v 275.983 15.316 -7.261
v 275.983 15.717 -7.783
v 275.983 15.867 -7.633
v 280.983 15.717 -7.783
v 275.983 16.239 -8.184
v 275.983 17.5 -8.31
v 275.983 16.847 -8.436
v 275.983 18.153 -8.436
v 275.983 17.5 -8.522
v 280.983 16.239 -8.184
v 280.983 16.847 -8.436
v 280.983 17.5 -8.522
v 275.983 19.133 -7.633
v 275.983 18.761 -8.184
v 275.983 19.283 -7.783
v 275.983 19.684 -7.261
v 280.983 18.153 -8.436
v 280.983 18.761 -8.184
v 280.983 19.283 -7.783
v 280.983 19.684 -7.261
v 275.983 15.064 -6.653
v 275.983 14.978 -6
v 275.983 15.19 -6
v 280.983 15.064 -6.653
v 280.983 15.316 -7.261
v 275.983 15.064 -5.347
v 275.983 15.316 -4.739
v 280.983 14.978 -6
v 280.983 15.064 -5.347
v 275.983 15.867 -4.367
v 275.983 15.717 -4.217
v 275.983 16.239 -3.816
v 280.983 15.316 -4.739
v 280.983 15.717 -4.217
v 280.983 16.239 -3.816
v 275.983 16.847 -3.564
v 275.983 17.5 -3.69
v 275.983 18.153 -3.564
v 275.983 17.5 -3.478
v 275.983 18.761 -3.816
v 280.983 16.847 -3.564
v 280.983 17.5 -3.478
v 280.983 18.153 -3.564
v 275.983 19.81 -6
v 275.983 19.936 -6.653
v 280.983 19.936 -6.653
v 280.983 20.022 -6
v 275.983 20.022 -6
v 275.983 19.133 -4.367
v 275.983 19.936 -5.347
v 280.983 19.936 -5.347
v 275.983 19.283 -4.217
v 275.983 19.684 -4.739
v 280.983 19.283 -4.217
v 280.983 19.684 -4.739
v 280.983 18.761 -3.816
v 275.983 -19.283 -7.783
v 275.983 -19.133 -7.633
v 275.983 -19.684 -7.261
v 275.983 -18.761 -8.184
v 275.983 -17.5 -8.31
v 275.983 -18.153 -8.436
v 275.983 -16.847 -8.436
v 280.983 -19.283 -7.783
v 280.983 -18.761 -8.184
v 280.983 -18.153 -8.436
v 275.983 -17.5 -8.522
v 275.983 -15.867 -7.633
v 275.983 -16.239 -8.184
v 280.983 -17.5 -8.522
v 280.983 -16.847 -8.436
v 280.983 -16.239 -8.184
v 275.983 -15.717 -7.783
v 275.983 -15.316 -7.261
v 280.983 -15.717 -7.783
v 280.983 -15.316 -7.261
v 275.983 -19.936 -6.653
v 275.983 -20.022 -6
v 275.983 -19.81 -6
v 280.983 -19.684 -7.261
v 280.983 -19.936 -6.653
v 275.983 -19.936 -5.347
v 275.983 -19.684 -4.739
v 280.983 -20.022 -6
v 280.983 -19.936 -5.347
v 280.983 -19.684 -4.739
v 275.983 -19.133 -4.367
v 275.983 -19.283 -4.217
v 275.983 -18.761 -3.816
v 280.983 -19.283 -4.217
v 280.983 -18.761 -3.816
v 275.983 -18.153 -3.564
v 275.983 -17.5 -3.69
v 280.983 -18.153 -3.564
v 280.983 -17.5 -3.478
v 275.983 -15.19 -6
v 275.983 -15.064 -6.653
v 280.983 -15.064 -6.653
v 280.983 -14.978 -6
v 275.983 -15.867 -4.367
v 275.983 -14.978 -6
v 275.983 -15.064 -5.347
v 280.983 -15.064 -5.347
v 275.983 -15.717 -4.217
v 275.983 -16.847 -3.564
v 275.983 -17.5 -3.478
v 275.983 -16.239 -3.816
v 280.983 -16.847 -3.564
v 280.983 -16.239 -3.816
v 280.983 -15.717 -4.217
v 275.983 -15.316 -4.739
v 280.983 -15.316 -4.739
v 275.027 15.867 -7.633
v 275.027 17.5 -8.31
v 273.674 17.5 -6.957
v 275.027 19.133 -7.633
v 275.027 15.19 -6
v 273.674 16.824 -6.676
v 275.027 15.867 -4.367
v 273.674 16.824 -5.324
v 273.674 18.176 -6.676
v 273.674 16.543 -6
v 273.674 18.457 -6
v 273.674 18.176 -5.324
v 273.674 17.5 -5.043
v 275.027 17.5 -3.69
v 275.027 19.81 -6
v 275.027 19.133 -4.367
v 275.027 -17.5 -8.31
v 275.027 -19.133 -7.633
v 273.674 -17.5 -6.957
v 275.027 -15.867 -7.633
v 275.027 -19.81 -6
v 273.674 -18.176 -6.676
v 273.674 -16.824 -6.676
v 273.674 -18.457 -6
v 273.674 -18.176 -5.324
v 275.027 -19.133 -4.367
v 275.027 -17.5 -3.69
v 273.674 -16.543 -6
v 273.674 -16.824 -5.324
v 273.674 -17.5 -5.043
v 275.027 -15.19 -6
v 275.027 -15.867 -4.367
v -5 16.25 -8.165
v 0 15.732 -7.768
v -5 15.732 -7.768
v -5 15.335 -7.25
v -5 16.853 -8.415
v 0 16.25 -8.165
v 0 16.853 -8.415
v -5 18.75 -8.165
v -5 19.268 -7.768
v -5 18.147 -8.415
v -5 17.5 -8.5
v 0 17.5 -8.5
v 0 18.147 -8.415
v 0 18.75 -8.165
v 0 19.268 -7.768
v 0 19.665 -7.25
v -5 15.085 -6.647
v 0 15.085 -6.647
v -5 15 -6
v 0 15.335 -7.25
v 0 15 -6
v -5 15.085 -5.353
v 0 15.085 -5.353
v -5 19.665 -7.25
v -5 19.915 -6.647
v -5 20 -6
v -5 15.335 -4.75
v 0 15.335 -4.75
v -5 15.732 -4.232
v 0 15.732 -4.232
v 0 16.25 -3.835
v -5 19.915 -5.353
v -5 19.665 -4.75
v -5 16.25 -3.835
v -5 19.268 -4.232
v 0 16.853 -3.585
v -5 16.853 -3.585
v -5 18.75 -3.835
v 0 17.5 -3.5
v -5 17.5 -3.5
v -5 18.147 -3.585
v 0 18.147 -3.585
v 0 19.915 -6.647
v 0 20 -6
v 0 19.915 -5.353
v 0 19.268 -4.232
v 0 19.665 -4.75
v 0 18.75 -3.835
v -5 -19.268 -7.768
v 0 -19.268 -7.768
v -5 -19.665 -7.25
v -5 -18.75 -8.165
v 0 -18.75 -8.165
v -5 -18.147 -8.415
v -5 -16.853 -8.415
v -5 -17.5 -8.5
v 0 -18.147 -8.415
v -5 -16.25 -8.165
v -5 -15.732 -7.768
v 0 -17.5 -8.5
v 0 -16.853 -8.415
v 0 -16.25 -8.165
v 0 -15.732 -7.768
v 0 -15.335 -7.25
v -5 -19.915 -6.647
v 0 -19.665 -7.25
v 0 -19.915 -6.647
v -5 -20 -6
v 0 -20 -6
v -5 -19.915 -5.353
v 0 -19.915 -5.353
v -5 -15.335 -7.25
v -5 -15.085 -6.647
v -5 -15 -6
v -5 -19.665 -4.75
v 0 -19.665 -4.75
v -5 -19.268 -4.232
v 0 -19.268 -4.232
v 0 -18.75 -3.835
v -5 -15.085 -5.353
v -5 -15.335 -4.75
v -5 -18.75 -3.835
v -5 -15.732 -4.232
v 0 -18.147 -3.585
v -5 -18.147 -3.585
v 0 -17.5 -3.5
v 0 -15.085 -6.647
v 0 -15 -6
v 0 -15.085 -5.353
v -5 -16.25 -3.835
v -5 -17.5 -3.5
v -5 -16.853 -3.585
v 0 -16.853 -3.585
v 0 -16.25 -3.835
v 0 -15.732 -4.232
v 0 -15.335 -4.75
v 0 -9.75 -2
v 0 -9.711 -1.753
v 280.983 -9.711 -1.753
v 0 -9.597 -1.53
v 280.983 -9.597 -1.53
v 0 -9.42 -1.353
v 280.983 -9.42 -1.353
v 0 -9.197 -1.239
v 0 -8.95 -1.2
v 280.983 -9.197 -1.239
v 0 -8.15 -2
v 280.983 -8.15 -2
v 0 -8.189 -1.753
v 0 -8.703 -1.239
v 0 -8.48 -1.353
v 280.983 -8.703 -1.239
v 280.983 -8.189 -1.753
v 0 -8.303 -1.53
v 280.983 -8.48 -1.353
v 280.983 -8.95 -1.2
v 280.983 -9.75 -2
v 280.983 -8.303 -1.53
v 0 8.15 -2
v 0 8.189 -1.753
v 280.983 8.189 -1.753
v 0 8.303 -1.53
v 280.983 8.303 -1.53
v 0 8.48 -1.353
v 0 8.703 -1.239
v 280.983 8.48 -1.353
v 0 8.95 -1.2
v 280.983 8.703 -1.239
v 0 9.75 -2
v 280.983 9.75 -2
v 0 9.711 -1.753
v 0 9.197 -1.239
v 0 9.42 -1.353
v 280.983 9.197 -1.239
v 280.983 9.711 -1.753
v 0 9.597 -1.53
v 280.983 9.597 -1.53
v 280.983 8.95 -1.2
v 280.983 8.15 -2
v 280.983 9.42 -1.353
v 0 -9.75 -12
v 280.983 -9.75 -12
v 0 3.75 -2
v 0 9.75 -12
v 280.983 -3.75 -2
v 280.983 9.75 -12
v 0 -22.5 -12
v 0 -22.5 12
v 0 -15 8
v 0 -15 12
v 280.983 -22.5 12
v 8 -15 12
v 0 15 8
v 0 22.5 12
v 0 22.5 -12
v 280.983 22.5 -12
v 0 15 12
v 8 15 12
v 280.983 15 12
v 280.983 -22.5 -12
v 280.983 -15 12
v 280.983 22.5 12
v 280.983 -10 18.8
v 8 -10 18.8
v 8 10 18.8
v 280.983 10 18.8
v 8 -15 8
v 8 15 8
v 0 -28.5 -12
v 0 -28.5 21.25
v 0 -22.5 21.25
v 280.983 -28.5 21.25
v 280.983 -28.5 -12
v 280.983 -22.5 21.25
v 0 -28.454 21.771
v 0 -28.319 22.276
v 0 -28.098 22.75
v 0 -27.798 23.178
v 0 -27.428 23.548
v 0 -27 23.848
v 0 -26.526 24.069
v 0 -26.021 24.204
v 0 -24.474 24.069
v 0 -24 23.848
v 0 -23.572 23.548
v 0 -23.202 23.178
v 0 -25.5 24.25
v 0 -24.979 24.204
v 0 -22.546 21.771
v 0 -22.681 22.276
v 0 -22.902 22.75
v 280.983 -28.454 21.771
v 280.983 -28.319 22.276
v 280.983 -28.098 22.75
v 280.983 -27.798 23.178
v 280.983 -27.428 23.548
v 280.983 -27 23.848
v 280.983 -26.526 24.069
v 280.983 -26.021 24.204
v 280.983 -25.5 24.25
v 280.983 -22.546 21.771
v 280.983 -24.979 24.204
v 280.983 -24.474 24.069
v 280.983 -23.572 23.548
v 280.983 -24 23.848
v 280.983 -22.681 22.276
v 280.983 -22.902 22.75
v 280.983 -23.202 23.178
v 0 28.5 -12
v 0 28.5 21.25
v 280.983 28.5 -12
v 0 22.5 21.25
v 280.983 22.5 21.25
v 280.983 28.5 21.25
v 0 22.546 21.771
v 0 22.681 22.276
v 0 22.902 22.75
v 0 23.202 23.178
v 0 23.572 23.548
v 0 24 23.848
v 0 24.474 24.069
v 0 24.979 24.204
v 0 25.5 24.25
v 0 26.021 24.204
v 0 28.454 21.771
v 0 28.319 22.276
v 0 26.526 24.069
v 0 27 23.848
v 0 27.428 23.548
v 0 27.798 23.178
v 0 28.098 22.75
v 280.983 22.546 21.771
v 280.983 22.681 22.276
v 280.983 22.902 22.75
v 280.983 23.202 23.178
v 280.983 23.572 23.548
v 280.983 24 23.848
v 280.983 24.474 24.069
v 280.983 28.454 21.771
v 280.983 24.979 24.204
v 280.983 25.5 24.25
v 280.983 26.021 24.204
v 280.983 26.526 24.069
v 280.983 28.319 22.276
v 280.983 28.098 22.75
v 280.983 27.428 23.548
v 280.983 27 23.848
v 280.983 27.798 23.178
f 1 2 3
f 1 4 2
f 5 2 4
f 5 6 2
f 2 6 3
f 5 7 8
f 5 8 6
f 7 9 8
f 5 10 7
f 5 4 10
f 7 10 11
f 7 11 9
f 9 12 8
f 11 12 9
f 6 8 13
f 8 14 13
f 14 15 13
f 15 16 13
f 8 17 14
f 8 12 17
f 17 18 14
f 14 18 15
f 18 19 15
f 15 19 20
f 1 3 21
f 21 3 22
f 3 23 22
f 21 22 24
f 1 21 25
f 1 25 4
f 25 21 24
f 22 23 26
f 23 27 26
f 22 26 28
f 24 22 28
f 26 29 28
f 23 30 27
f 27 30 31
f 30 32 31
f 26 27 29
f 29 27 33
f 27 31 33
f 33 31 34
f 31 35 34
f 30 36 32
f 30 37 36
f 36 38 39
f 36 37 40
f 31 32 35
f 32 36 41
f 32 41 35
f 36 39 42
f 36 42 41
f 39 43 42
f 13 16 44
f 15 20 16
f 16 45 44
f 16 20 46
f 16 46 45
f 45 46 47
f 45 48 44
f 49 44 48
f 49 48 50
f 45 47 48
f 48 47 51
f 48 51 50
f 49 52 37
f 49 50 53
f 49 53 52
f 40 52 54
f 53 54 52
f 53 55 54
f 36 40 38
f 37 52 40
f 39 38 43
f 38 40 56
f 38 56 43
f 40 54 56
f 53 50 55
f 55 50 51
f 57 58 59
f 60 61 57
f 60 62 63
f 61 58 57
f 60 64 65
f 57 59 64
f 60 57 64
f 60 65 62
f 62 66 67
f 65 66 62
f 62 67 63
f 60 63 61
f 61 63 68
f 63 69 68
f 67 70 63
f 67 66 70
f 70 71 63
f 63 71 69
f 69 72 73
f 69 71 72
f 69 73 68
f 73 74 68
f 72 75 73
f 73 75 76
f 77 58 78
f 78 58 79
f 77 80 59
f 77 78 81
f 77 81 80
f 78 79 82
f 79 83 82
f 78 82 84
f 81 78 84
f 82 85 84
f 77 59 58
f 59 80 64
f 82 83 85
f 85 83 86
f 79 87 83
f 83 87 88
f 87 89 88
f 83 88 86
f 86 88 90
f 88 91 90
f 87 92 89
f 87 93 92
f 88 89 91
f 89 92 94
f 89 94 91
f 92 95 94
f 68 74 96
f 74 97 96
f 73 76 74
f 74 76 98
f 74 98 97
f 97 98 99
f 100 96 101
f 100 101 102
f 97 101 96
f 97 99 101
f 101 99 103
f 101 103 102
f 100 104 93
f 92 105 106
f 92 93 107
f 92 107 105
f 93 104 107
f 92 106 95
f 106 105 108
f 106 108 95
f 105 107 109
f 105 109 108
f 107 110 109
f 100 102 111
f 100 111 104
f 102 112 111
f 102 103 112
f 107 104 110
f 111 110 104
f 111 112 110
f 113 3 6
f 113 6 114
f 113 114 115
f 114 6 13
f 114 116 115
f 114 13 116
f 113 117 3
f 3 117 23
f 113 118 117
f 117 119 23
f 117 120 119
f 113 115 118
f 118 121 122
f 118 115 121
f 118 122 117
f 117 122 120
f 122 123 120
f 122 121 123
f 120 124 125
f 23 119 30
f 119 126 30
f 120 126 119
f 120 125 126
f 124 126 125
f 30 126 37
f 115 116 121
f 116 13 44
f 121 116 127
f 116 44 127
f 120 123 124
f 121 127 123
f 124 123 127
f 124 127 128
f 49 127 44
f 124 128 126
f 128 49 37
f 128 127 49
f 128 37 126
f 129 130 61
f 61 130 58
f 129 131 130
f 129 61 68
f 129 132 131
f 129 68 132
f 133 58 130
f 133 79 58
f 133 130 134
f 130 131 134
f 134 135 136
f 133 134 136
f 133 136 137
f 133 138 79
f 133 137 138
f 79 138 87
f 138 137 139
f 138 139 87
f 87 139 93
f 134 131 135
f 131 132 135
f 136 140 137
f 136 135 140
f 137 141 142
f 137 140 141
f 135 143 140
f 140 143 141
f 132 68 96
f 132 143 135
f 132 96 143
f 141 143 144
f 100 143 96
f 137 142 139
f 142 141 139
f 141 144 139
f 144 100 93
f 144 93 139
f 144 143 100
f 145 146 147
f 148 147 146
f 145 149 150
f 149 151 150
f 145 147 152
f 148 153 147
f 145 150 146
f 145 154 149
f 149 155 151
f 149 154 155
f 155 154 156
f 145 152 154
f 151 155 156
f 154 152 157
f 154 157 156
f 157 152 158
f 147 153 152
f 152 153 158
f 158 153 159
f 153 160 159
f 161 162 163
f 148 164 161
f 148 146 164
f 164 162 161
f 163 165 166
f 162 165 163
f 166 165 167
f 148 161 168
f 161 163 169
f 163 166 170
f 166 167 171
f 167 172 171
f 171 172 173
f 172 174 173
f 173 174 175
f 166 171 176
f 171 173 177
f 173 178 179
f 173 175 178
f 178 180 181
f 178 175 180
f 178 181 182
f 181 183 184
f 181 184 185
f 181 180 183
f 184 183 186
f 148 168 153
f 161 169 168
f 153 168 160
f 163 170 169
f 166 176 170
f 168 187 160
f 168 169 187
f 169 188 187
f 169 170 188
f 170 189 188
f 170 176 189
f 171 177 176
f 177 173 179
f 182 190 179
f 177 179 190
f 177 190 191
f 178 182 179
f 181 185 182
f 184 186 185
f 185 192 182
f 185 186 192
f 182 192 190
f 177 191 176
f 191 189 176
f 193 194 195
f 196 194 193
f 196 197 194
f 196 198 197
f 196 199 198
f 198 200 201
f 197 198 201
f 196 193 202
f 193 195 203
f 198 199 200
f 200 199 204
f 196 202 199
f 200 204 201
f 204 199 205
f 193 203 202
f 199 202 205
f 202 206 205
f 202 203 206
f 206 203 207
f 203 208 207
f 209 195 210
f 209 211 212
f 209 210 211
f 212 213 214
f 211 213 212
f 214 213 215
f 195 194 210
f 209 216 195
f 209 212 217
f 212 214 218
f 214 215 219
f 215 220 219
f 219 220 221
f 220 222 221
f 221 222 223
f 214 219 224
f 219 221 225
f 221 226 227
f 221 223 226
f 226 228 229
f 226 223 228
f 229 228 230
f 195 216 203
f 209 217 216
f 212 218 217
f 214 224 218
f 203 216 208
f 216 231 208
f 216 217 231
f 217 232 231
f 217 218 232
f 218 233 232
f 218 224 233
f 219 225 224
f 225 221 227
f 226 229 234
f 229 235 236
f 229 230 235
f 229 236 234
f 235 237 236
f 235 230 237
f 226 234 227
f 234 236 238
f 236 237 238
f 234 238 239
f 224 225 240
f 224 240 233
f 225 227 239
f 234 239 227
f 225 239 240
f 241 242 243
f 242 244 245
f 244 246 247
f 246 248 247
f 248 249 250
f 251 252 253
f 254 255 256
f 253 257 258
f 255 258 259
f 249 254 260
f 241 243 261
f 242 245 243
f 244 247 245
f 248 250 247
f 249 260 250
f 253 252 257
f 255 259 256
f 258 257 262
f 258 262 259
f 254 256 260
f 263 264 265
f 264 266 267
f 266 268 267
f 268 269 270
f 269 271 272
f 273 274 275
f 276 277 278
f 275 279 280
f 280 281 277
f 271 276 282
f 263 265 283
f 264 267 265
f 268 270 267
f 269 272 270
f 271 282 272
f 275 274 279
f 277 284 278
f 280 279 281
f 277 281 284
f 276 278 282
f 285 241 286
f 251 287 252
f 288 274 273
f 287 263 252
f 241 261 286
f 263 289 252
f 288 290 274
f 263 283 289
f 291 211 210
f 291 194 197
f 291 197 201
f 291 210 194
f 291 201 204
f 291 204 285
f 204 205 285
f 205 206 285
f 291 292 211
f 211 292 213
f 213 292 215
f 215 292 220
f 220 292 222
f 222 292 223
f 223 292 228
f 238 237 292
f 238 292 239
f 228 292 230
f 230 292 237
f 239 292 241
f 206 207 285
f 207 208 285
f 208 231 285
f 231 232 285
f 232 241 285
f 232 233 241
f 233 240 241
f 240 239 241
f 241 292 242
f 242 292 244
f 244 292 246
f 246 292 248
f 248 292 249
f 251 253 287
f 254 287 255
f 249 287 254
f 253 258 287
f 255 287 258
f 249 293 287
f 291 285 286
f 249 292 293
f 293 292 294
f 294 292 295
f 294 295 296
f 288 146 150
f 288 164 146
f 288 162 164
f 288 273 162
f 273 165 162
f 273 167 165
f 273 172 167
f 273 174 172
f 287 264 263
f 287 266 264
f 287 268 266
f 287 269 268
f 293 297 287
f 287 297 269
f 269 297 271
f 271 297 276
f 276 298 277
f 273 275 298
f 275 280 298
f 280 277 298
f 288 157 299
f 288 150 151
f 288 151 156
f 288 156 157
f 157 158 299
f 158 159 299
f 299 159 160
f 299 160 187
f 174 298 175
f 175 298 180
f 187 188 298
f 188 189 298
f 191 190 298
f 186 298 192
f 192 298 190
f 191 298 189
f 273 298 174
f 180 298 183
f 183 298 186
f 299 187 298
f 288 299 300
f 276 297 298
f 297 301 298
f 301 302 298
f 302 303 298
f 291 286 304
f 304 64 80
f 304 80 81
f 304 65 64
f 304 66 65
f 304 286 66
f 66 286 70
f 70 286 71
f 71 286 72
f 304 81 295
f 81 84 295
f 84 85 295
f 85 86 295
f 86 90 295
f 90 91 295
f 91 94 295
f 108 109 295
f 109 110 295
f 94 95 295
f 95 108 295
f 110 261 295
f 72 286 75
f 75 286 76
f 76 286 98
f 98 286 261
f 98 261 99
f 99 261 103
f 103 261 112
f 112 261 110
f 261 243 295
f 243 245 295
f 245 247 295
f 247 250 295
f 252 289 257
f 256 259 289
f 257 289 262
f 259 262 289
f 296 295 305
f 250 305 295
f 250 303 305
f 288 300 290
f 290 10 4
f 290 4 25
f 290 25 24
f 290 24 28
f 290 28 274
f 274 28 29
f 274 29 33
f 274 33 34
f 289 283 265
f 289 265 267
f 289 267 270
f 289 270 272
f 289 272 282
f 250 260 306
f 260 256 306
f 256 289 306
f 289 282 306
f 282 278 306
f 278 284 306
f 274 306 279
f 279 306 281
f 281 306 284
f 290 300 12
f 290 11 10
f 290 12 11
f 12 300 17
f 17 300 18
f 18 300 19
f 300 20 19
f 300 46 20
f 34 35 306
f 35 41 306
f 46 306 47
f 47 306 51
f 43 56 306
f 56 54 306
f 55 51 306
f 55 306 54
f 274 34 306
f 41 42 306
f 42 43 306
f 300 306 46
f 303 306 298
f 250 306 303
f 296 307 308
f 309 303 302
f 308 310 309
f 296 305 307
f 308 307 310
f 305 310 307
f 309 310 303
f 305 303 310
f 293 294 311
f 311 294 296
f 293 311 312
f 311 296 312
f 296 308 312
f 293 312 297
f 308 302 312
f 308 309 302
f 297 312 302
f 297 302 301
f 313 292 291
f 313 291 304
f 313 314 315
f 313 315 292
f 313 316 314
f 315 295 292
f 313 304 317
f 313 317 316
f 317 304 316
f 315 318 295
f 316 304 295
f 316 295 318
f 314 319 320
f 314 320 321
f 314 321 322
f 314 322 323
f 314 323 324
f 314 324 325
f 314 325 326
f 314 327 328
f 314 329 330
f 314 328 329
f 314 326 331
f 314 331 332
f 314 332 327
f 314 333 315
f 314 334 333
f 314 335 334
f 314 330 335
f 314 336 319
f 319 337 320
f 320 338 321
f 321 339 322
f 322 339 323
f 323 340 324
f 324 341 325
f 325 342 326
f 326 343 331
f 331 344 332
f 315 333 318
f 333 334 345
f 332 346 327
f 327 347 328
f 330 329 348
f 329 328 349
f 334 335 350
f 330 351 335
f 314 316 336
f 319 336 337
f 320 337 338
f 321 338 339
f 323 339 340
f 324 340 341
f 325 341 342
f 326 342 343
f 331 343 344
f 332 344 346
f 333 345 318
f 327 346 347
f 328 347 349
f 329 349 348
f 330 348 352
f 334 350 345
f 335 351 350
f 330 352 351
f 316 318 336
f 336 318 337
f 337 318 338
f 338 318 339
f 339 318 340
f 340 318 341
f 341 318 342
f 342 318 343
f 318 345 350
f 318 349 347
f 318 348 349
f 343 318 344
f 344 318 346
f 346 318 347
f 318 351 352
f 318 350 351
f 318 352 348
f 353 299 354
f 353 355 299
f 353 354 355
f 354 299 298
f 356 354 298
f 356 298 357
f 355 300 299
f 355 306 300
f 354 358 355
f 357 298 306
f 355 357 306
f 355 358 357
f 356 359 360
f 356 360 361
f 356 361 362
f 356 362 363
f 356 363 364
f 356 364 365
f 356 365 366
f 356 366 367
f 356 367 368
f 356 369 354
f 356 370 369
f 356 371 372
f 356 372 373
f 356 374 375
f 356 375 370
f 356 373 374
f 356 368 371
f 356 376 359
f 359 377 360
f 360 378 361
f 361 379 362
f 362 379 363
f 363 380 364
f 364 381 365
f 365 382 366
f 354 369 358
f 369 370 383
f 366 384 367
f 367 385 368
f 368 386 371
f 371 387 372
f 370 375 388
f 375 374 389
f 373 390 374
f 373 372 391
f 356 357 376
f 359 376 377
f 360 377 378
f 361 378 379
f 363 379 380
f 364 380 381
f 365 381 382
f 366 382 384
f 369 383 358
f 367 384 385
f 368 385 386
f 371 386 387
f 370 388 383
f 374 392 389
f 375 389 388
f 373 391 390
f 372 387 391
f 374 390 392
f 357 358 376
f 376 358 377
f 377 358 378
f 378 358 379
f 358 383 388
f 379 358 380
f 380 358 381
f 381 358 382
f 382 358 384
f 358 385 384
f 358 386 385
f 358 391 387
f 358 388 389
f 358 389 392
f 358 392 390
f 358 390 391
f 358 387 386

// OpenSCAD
// file: bottom_bracket.scad
include <dimensions.scad> 

module screw_slot() {
  $fn=32;
  
  cylinder(h=total_height+1, d=screw_body_clearance);
  cylinder(h=total_height - screw_body_depth - screw_angle_depth, d=screw_head_clearance);
  translate([0, 0, total_height - screw_body_depth - screw_angle_depth]) {
    cylinder(h=screw_angle_depth, d1=screw_head_clearance, d2=screw_body_clearance);
  }
}

// Z should be set to the surface that is being joined to
module joiner_pins_male() {
  translate([depth/2, (hd_enclosure_width/2) - pin_diameter, 0]) {
    cylinder(d=pin_diameter, h=pin_length, $fn=24);
  }
  translate([depth/2, -((hd_enclosure_width/2) - pin_diameter), 0]) {
    cylinder(d=pin_diameter, h=pin_length, $fn=24);
  }
}

module cylinder_outer(height,radius,fn){
  fudge = 1/cos(180/fn);
  cylinder(h=height,r=radius*fudge,$fn=fn);
}

module sphere_outer(r,fn){
  fudge = 1/cos(180/fn);
  sphere(r=r*fudge,$fn=fn);
}

module octahedron(r=10) {
    polyhedron(
        points=[
            [r,0,0], [-r,0,0], [0,r,0], [0,-r,0], // Equator
            [0,0,r], [0,0,-r]                      // Poles
        ],
        faces=[
            [0,2,4], [2,1,4], [1,3,4], [3,0,4],    // Top faces
            [0,3,5], [3,1,5], [1,2,5], [2,0,5]     // Bottom faces
        ]
    );
}

module joiner_pins_female() {
  module pin() {
    cylinder_outer(radius=pin_diameter/2, height=pin_length, fn=24);
    //translate([0, 0, 0/*pin_length*/]) {
      sphere(r=pin_diameter/2, $fn=8);
      //}
  }
  
  translate([depth/2, (hd_enclosure_width/2) - pin_diameter, -pin_length]) {
    pin();
  }
  translate([depth/2, -((hd_enclosure_width/2) - pin_diameter), -pin_length]) {
    pin();
  }
}

module main_body(ts=true, h=total_height) {

  // the radius of the little fold in the PD side
  pd_enclosure_mini_radius = 0.8;
  dfloor = (ts ? seal_floor_offset : 0);
    
  difference() {

    // the floor
    translate([-dfloor, -hd_enclosure_width/2, 0]) {
      cube([dfloor + depth,hd_enclosure_width, h]);
    }

    // the carveout for the pet door side
    translate([depth - pd_enclosure_depth, -pd_enclosure_width/2, 0]) {
      cube([pd_enclosure_depth, pd_enclosure_width, h]);
      rotate([0, 0, 90]) {
        translate([pd_enclosure_mini_radius, 0, 0]){
          cylinder(r=pd_enclosure_mini_radius, h=h, $fn=20);
        }
        translate([pd_enclosure_width - pd_enclosure_mini_radius, 0, 0]) {
          cylinder(r=pd_enclosure_mini_radius, h=h, $fn=20);
        }
      }
    }
  }

  if (ts) {
    translate([-dfloor, 0, 0])
    trapezoid_seal(h=h);
  }
}

// the trapezoidal seal
module trapezoid_seal(h=total_height) {
  x0 = -seal_depth;

  y0 = -seal_small_width / 2;
  y1 = seal_small_width / 2;
  y2 = -seal_large_width / 2;
  y3 = seal_large_width / 2;
  
  linear_extrude(height=h) {
    polygon(points=[[x0, y0], [x0, y1], [0, y3], [0, y2]]);
  }
}

module track_slot() {
  l = seal_depth + depth + seal_floor_offset;
  
  translate([-(seal_depth + seal_floor_offset), 0, 0]) {
    rotate(a=[0,90,0]) {
      # cylinder(h=l, d=track_diameter, $fn=32);
    }
  }
}

module seal(h=overhang_height, l=hd_enclosure_depth + depth) {
  ri = overhang_indoor_width / 2;
  ro = overhang_outdoor_width / 2;

  // the indoor overhang
  translate([ri,
             -hd_enclosure_width/2 - overhang_indoor_width,
             track_height]) {
    cube([l-ri,
          overhang_indoor_width,
          h]);
    translate([0, ri, overhang_height-h])
      cylinder(r=ri, h=h, $fn=36);
  }

  // the outdoor overhang
  translate([ro,
             hd_enclosure_width/2,
             track_height]) {
    cube([l-ro,
          overhang_outdoor_width,
          h]);
    translate([0, ro, overhang_height-h])
      cylinder(r=ro, h=h, $fn=36);
  }
}

module seal_overhang(l=hd_enclosure_depth + depth) {
  translate([-hd_enclosure_depth, 0, 0])
    seal(l=l);
}


screw_y_offset = total_width / 4 + 1;
screw_x_offset = screw_body_clearance + 2;

module screw_slots() {
  translate([screw_x_offset, screw_y_offset, 0])
    screw_slot();
  
  translate([screw_x_offset, -screw_y_offset, 0])
    screw_slot();
}

// some little dots to help grip the petdoor side
module grippies(l=total_length) {
  grippy_radius = 0.75;
  grippy_thick = 0.3;
  grippy_angle = 45;
  
  for (x=[10, l-10, l/2]) {
    translate([x, 0, 0]) {
      /*
      translate([0, pd_enclosure_width/2, pd_enclosure_depth/2 - depth]) {
        // # sphere(r=grippy_radius, $fn=8);
        rotate([0, 90, 0])
        rotate([0, 0, 180-grippy_angle])
          cube([grippy_thick, grippy_radius, 3]);
      }
      translate([0, -pd_enclosure_width/2, pd_enclosure_depth/2 - depth]) {
        rotate([0, 90, 0])
        rotate([0, 0, grippy_angle])
          cube([grippy_thick, grippy_radius, 3]);
        // sphere(r=grippy_radius, $fn=8);
      }
      */
      translate([0, -pd_enclosure_width/2, pd_enclosure_depth/2 - depth])
        rotate([grippy_angle, 0, 0])
        cylinder(r=grippy_radius, h=grippy_thick, $fn=20);
      translate([0, pd_enclosure_width/2, pd_enclosure_depth/2 - depth])
        rotate([90, 0, 0])
        rotate([grippy_angle, 0, 0])
        cylinder(r=grippy_radius, h=grippy_thick, $fn=20);
    }
  }
}

module bottom_bracket() {
  
  seal_overhang();

  // screw_slots();

  difference() {
    main_body();
    track_slot();

    translate([0, 0, total_height-pin_length]) {
      joiner_pins_male();
    }
  }
}

// rotate([0, 180, 0])
translate([0, 0, -total_height]) bottom_bracket();
// file: dimensions.scad
//      +---------------------+
//      |                     |
//      |                     |
//      |                     |
//      |                     |
//      |                     |
//      |                     |
//      |                     |
//      |                     |
//      |                     |
//      |                     |
//   ^  |                     |
//   |  |                     |
//   Y  |                     |
//   |  |                     |
//   |  |                     |
//      +---------------------+
//       --  X (depth) --> 
// 

// the depth of the main body
depth = 12;

// the depth of the latch plate
latch_plate_depth = 3.25;

// the width of the enclosure for the human door side
hd_enclosure_width = 45;

// the depth of the enclosure for the human door side
hd_enclosure_depth = 10 * 2.5 + latch_plate_depth - 6 + 2;

// the width of the indoor overhang
overhang_indoor_width = 6;

// the width of the outdoor overhang
overhang_outdoor_width = 6;

// the total height
total_height = 290;

// the width of the enclosure for the pet door side
pd_enclosure_width = 20 - 0.5;

// the depth of the enclosure for the pet door side
pd_enclosure_depth = 10;

seal_floor_offset = 12;
seal_small_width = 20;
seal_large_width = 30;
seal_depth = 6.8;

// the height of the track inset area
track_height = 18;

// the diameter of the track
track_diameter = 7;

// the height of the overhang
overhang_height = total_height - track_height;

// the total width
total_width = hd_enclosure_width + overhang_indoor_width + overhang_outdoor_width;

screw_body_clearance = 4.5;
screw_head_clearance = 9;
screw_body_depth = 10;
screw_angle_depth = 3;

// pins
pin_diameter = 5;
pin_length = 5;

module simple_hd_seal(l=total_length) {
  // indoor HD seal
  ri = overhang_indoor_width / 2;
  
  translate([0,
             -(hd_enclosure_width/2 + overhang_indoor_width),
             -depth]) {
    cube([l,
          overhang_indoor_width,
          depth + hd_enclosure_depth - ri]);
    translate([0, overhang_indoor_width/2, hd_enclosure_depth + depth - ri])
      rotate([0, 90, 0])
      cylinder(r=ri, h=l, $fn=36);
  }

  // outdoor HD seal
  ro = overhang_outdoor_width / 2;
  
  translate([0,
             hd_enclosure_width/2,
             -depth]) {
    cube([l,
          overhang_outdoor_width,
          depth + hd_enclosure_depth - ro]);
    translate([0, overhang_indoor_width/2, hd_enclosure_depth + depth - ro])
      rotate([0, 90, 0])
      cylinder(r=ro, h=l, $fn=36);
  }
}

top_bracket_pd_expansion_length = 166;
top_bracket_pd_expansion_width = 24;
top_bracket_frame_depth = 26;

// how far the latch plate extends beyond the middle bracket
latch_plate_over_extension = 8;

// how far to penetrate the gap for the latch plate into the
// main seal floor (i.e., how deep the latch plate is relative
// to the HD surface it's attached to)
latch_plate_over_depth = 4;

// the Creality Max prints about 0.3% smaller, so if the model is
// 280mm long, it comes out to about 279mm actual
function adjust_length_error(l) = l / (1-0.0035);
// main file
include <dimensions.scad>;
use <bottom_bracket.scad>;

total_length = adjust_length_error(280);

difference() {
  rotate([0, 90, 0])
    main_body(h=total_length);
  union() {
    translate([total_length, 0, 0])
      rotate([0, 90, 0])
      joiner_pins_female();
    translate([0,
               -seal_large_width/2,
               seal_floor_offset - latch_plate_over_depth])
    # cube([latch_plate_over_extension,
      seal_large_width,
      seal_depth + latch_plate_over_depth]);
  }
}
  

translate([-pin_length, 0, 0]) {
  rotate([0, 90, 0]) {
    joiner_pins_male();
  }
}

simple_hd_seal();
